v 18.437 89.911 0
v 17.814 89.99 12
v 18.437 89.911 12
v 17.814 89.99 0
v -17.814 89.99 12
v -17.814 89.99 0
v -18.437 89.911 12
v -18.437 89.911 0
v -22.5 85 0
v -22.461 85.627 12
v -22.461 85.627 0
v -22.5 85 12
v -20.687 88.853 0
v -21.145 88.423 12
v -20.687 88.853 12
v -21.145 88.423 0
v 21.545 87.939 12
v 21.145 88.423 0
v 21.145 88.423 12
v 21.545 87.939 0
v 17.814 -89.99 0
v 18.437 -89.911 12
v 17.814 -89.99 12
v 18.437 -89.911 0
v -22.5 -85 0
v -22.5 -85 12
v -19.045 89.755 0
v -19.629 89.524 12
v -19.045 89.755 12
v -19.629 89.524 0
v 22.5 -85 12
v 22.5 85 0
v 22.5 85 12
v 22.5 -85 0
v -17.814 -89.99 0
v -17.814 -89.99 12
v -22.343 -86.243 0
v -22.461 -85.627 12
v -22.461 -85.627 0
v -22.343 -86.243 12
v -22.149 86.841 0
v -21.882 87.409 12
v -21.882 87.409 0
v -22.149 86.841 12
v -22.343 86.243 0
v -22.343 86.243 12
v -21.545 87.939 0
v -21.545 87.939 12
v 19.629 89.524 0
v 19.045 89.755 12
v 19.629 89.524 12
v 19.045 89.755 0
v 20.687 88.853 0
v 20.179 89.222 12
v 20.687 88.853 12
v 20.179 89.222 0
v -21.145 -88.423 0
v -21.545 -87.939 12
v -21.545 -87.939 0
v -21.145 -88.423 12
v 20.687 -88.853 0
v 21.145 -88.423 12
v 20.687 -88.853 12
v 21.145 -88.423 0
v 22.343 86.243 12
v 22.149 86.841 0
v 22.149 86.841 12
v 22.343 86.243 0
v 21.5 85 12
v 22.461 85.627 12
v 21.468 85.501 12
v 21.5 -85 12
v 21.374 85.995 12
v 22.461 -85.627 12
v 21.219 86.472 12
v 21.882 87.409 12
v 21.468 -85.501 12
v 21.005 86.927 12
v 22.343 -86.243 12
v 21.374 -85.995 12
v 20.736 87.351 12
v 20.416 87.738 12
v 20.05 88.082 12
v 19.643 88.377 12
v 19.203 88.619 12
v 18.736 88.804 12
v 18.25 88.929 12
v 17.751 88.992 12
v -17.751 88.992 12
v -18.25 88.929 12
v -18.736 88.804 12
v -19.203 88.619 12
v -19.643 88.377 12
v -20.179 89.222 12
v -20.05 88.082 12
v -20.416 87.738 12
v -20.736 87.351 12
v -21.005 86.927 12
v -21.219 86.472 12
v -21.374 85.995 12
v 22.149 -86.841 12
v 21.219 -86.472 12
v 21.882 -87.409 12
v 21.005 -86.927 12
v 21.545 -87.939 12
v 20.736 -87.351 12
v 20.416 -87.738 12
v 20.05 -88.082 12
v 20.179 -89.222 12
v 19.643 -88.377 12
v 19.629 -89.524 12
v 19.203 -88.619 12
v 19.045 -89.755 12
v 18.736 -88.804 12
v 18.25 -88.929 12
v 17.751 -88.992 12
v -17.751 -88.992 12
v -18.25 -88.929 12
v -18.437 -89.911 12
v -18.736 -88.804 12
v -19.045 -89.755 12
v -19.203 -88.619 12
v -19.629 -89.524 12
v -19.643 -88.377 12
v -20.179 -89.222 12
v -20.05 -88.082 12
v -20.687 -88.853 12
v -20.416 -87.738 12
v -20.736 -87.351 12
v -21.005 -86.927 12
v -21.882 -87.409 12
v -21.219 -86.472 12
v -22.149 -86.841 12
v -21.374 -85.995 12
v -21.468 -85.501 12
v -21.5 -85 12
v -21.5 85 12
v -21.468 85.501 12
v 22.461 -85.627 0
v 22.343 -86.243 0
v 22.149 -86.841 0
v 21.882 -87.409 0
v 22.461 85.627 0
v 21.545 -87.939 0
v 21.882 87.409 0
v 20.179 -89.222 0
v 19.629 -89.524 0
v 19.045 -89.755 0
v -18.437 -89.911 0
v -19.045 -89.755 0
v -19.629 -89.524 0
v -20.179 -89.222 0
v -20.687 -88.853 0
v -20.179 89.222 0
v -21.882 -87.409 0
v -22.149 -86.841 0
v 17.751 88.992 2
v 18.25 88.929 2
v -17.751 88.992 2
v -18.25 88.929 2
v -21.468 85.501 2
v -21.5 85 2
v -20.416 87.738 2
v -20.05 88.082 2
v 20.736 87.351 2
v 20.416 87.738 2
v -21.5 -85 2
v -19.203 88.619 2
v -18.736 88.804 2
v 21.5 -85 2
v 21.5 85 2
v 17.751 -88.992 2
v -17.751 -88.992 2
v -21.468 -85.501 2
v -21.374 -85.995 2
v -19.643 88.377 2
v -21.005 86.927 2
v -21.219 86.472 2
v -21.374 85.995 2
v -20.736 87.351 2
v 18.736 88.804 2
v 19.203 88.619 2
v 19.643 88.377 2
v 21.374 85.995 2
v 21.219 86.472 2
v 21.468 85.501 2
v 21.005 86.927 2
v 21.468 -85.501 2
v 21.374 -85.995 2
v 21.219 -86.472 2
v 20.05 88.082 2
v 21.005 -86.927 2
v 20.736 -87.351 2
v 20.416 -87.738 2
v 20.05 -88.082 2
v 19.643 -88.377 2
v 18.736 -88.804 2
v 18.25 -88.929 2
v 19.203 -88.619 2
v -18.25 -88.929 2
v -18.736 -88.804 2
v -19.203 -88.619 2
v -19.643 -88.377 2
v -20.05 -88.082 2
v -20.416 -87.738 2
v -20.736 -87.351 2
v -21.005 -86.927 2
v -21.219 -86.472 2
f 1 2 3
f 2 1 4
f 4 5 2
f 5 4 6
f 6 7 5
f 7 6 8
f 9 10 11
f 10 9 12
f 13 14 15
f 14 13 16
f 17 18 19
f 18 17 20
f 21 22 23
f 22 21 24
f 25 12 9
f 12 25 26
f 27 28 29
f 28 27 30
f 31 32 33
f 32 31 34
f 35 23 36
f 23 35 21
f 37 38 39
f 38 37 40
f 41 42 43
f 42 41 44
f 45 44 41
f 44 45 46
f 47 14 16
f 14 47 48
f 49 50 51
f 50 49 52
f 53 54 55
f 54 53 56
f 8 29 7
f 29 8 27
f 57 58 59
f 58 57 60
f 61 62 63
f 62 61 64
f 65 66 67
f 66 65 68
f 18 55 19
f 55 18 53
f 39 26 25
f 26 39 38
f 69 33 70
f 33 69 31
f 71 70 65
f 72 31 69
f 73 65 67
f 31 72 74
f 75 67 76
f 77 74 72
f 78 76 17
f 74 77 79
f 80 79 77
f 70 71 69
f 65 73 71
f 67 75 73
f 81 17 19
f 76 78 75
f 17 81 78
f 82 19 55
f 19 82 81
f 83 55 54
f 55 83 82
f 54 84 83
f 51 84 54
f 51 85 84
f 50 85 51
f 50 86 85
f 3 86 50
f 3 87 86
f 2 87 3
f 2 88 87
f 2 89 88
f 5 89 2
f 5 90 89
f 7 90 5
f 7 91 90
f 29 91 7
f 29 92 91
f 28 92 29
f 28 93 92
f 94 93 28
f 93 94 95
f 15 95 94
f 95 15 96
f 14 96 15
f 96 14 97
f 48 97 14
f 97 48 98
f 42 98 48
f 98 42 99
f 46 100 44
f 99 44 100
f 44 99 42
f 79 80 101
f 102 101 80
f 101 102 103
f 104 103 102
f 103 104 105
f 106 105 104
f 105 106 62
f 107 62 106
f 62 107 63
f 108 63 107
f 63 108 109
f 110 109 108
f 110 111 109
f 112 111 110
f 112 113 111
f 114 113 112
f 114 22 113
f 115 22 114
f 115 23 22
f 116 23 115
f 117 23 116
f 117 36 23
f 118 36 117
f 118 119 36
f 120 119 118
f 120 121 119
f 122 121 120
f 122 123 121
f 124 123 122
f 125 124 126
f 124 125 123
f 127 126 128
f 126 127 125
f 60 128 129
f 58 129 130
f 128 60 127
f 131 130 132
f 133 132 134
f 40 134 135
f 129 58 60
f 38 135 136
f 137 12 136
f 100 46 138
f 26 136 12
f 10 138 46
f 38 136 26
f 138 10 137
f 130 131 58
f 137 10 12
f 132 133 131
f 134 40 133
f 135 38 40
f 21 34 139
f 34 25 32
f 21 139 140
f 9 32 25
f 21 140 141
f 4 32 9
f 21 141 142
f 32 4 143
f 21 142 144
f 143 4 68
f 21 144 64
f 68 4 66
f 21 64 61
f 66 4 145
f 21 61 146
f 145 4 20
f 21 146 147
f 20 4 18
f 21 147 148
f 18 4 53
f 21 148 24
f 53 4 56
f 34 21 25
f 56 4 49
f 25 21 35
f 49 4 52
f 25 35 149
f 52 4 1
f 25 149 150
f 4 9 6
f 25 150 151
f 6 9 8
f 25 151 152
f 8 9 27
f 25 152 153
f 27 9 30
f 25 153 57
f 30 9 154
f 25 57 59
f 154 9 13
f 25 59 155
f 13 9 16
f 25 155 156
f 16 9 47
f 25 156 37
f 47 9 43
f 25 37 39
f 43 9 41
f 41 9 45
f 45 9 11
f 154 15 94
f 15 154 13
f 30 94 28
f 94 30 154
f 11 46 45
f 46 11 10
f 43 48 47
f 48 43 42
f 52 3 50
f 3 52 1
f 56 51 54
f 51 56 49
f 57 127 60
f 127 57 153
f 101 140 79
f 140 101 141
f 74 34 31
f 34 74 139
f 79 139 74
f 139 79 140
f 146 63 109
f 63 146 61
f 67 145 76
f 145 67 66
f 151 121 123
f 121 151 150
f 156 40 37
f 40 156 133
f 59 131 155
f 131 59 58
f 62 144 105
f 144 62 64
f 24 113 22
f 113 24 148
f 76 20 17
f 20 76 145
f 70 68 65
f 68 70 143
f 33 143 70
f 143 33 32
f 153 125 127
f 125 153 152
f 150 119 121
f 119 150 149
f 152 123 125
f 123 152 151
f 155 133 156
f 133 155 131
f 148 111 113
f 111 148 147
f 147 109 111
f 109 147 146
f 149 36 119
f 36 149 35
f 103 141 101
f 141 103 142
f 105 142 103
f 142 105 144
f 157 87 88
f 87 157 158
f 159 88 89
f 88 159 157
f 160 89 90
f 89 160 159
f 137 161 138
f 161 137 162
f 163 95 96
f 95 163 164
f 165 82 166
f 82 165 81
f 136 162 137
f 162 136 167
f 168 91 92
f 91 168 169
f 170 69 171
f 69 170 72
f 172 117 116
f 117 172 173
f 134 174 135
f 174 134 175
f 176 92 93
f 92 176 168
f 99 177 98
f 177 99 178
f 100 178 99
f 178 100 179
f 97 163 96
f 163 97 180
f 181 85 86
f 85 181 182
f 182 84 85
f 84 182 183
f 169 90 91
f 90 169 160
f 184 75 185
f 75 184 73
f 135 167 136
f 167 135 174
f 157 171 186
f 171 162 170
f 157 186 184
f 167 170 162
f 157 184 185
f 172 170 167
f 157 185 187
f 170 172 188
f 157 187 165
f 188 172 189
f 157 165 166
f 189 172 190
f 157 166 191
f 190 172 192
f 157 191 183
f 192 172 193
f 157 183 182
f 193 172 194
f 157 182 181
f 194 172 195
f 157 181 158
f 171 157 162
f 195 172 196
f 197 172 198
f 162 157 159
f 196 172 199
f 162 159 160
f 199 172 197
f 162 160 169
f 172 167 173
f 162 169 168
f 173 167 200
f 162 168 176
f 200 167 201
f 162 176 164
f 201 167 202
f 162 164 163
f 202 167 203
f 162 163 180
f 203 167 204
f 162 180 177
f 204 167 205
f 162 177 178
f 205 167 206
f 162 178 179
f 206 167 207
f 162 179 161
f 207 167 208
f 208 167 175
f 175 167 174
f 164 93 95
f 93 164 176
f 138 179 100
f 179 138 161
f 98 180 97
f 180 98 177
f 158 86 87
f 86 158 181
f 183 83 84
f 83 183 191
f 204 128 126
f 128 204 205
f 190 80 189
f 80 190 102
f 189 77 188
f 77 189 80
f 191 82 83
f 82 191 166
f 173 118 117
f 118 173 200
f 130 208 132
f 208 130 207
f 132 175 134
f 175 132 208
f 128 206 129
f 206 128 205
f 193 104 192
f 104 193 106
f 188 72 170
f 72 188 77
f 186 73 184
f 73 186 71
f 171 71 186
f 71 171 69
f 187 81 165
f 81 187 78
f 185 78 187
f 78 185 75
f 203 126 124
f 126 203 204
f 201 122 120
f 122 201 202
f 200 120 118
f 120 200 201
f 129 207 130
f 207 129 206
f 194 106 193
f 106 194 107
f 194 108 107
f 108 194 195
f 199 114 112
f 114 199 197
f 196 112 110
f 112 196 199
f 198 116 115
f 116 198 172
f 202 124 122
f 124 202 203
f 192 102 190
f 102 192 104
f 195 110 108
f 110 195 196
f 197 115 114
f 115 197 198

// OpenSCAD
$fn = 50;


difference() {
	union() {
		hull() {
			translate(v = [-17.5000000000, 85.0000000000, 0]) {
				cylinder(h = 12, r = 5);
			}
			translate(v = [17.5000000000, 85.0000000000, 0]) {
				cylinder(h = 12, r = 5);
			}
			translate(v = [-17.5000000000, -85.0000000000, 0]) {
				cylinder(h = 12, r = 5);
			}
			translate(v = [17.5000000000, -85.0000000000, 0]) {
				cylinder(h = 12, r = 5);
			}
		}
	}
	union() {
		translate(v = [0, 0, 2]) {
			hull() {
				translate(v = [-17.5000000000, 85.0000000000, 0]) {
					cylinder(h = 10, r = 4);
				}
				translate(v = [17.5000000000, 85.0000000000, 0]) {
					cylinder(h = 10, r = 4);
				}
				translate(v = [-17.5000000000, -85.0000000000, 0]) {
					cylinder(h = 10, r = 4);
				}
				translate(v = [17.5000000000, -85.0000000000, 0]) {
					cylinder(h = 10, r = 4);
				}
			}
		}
	}
}
